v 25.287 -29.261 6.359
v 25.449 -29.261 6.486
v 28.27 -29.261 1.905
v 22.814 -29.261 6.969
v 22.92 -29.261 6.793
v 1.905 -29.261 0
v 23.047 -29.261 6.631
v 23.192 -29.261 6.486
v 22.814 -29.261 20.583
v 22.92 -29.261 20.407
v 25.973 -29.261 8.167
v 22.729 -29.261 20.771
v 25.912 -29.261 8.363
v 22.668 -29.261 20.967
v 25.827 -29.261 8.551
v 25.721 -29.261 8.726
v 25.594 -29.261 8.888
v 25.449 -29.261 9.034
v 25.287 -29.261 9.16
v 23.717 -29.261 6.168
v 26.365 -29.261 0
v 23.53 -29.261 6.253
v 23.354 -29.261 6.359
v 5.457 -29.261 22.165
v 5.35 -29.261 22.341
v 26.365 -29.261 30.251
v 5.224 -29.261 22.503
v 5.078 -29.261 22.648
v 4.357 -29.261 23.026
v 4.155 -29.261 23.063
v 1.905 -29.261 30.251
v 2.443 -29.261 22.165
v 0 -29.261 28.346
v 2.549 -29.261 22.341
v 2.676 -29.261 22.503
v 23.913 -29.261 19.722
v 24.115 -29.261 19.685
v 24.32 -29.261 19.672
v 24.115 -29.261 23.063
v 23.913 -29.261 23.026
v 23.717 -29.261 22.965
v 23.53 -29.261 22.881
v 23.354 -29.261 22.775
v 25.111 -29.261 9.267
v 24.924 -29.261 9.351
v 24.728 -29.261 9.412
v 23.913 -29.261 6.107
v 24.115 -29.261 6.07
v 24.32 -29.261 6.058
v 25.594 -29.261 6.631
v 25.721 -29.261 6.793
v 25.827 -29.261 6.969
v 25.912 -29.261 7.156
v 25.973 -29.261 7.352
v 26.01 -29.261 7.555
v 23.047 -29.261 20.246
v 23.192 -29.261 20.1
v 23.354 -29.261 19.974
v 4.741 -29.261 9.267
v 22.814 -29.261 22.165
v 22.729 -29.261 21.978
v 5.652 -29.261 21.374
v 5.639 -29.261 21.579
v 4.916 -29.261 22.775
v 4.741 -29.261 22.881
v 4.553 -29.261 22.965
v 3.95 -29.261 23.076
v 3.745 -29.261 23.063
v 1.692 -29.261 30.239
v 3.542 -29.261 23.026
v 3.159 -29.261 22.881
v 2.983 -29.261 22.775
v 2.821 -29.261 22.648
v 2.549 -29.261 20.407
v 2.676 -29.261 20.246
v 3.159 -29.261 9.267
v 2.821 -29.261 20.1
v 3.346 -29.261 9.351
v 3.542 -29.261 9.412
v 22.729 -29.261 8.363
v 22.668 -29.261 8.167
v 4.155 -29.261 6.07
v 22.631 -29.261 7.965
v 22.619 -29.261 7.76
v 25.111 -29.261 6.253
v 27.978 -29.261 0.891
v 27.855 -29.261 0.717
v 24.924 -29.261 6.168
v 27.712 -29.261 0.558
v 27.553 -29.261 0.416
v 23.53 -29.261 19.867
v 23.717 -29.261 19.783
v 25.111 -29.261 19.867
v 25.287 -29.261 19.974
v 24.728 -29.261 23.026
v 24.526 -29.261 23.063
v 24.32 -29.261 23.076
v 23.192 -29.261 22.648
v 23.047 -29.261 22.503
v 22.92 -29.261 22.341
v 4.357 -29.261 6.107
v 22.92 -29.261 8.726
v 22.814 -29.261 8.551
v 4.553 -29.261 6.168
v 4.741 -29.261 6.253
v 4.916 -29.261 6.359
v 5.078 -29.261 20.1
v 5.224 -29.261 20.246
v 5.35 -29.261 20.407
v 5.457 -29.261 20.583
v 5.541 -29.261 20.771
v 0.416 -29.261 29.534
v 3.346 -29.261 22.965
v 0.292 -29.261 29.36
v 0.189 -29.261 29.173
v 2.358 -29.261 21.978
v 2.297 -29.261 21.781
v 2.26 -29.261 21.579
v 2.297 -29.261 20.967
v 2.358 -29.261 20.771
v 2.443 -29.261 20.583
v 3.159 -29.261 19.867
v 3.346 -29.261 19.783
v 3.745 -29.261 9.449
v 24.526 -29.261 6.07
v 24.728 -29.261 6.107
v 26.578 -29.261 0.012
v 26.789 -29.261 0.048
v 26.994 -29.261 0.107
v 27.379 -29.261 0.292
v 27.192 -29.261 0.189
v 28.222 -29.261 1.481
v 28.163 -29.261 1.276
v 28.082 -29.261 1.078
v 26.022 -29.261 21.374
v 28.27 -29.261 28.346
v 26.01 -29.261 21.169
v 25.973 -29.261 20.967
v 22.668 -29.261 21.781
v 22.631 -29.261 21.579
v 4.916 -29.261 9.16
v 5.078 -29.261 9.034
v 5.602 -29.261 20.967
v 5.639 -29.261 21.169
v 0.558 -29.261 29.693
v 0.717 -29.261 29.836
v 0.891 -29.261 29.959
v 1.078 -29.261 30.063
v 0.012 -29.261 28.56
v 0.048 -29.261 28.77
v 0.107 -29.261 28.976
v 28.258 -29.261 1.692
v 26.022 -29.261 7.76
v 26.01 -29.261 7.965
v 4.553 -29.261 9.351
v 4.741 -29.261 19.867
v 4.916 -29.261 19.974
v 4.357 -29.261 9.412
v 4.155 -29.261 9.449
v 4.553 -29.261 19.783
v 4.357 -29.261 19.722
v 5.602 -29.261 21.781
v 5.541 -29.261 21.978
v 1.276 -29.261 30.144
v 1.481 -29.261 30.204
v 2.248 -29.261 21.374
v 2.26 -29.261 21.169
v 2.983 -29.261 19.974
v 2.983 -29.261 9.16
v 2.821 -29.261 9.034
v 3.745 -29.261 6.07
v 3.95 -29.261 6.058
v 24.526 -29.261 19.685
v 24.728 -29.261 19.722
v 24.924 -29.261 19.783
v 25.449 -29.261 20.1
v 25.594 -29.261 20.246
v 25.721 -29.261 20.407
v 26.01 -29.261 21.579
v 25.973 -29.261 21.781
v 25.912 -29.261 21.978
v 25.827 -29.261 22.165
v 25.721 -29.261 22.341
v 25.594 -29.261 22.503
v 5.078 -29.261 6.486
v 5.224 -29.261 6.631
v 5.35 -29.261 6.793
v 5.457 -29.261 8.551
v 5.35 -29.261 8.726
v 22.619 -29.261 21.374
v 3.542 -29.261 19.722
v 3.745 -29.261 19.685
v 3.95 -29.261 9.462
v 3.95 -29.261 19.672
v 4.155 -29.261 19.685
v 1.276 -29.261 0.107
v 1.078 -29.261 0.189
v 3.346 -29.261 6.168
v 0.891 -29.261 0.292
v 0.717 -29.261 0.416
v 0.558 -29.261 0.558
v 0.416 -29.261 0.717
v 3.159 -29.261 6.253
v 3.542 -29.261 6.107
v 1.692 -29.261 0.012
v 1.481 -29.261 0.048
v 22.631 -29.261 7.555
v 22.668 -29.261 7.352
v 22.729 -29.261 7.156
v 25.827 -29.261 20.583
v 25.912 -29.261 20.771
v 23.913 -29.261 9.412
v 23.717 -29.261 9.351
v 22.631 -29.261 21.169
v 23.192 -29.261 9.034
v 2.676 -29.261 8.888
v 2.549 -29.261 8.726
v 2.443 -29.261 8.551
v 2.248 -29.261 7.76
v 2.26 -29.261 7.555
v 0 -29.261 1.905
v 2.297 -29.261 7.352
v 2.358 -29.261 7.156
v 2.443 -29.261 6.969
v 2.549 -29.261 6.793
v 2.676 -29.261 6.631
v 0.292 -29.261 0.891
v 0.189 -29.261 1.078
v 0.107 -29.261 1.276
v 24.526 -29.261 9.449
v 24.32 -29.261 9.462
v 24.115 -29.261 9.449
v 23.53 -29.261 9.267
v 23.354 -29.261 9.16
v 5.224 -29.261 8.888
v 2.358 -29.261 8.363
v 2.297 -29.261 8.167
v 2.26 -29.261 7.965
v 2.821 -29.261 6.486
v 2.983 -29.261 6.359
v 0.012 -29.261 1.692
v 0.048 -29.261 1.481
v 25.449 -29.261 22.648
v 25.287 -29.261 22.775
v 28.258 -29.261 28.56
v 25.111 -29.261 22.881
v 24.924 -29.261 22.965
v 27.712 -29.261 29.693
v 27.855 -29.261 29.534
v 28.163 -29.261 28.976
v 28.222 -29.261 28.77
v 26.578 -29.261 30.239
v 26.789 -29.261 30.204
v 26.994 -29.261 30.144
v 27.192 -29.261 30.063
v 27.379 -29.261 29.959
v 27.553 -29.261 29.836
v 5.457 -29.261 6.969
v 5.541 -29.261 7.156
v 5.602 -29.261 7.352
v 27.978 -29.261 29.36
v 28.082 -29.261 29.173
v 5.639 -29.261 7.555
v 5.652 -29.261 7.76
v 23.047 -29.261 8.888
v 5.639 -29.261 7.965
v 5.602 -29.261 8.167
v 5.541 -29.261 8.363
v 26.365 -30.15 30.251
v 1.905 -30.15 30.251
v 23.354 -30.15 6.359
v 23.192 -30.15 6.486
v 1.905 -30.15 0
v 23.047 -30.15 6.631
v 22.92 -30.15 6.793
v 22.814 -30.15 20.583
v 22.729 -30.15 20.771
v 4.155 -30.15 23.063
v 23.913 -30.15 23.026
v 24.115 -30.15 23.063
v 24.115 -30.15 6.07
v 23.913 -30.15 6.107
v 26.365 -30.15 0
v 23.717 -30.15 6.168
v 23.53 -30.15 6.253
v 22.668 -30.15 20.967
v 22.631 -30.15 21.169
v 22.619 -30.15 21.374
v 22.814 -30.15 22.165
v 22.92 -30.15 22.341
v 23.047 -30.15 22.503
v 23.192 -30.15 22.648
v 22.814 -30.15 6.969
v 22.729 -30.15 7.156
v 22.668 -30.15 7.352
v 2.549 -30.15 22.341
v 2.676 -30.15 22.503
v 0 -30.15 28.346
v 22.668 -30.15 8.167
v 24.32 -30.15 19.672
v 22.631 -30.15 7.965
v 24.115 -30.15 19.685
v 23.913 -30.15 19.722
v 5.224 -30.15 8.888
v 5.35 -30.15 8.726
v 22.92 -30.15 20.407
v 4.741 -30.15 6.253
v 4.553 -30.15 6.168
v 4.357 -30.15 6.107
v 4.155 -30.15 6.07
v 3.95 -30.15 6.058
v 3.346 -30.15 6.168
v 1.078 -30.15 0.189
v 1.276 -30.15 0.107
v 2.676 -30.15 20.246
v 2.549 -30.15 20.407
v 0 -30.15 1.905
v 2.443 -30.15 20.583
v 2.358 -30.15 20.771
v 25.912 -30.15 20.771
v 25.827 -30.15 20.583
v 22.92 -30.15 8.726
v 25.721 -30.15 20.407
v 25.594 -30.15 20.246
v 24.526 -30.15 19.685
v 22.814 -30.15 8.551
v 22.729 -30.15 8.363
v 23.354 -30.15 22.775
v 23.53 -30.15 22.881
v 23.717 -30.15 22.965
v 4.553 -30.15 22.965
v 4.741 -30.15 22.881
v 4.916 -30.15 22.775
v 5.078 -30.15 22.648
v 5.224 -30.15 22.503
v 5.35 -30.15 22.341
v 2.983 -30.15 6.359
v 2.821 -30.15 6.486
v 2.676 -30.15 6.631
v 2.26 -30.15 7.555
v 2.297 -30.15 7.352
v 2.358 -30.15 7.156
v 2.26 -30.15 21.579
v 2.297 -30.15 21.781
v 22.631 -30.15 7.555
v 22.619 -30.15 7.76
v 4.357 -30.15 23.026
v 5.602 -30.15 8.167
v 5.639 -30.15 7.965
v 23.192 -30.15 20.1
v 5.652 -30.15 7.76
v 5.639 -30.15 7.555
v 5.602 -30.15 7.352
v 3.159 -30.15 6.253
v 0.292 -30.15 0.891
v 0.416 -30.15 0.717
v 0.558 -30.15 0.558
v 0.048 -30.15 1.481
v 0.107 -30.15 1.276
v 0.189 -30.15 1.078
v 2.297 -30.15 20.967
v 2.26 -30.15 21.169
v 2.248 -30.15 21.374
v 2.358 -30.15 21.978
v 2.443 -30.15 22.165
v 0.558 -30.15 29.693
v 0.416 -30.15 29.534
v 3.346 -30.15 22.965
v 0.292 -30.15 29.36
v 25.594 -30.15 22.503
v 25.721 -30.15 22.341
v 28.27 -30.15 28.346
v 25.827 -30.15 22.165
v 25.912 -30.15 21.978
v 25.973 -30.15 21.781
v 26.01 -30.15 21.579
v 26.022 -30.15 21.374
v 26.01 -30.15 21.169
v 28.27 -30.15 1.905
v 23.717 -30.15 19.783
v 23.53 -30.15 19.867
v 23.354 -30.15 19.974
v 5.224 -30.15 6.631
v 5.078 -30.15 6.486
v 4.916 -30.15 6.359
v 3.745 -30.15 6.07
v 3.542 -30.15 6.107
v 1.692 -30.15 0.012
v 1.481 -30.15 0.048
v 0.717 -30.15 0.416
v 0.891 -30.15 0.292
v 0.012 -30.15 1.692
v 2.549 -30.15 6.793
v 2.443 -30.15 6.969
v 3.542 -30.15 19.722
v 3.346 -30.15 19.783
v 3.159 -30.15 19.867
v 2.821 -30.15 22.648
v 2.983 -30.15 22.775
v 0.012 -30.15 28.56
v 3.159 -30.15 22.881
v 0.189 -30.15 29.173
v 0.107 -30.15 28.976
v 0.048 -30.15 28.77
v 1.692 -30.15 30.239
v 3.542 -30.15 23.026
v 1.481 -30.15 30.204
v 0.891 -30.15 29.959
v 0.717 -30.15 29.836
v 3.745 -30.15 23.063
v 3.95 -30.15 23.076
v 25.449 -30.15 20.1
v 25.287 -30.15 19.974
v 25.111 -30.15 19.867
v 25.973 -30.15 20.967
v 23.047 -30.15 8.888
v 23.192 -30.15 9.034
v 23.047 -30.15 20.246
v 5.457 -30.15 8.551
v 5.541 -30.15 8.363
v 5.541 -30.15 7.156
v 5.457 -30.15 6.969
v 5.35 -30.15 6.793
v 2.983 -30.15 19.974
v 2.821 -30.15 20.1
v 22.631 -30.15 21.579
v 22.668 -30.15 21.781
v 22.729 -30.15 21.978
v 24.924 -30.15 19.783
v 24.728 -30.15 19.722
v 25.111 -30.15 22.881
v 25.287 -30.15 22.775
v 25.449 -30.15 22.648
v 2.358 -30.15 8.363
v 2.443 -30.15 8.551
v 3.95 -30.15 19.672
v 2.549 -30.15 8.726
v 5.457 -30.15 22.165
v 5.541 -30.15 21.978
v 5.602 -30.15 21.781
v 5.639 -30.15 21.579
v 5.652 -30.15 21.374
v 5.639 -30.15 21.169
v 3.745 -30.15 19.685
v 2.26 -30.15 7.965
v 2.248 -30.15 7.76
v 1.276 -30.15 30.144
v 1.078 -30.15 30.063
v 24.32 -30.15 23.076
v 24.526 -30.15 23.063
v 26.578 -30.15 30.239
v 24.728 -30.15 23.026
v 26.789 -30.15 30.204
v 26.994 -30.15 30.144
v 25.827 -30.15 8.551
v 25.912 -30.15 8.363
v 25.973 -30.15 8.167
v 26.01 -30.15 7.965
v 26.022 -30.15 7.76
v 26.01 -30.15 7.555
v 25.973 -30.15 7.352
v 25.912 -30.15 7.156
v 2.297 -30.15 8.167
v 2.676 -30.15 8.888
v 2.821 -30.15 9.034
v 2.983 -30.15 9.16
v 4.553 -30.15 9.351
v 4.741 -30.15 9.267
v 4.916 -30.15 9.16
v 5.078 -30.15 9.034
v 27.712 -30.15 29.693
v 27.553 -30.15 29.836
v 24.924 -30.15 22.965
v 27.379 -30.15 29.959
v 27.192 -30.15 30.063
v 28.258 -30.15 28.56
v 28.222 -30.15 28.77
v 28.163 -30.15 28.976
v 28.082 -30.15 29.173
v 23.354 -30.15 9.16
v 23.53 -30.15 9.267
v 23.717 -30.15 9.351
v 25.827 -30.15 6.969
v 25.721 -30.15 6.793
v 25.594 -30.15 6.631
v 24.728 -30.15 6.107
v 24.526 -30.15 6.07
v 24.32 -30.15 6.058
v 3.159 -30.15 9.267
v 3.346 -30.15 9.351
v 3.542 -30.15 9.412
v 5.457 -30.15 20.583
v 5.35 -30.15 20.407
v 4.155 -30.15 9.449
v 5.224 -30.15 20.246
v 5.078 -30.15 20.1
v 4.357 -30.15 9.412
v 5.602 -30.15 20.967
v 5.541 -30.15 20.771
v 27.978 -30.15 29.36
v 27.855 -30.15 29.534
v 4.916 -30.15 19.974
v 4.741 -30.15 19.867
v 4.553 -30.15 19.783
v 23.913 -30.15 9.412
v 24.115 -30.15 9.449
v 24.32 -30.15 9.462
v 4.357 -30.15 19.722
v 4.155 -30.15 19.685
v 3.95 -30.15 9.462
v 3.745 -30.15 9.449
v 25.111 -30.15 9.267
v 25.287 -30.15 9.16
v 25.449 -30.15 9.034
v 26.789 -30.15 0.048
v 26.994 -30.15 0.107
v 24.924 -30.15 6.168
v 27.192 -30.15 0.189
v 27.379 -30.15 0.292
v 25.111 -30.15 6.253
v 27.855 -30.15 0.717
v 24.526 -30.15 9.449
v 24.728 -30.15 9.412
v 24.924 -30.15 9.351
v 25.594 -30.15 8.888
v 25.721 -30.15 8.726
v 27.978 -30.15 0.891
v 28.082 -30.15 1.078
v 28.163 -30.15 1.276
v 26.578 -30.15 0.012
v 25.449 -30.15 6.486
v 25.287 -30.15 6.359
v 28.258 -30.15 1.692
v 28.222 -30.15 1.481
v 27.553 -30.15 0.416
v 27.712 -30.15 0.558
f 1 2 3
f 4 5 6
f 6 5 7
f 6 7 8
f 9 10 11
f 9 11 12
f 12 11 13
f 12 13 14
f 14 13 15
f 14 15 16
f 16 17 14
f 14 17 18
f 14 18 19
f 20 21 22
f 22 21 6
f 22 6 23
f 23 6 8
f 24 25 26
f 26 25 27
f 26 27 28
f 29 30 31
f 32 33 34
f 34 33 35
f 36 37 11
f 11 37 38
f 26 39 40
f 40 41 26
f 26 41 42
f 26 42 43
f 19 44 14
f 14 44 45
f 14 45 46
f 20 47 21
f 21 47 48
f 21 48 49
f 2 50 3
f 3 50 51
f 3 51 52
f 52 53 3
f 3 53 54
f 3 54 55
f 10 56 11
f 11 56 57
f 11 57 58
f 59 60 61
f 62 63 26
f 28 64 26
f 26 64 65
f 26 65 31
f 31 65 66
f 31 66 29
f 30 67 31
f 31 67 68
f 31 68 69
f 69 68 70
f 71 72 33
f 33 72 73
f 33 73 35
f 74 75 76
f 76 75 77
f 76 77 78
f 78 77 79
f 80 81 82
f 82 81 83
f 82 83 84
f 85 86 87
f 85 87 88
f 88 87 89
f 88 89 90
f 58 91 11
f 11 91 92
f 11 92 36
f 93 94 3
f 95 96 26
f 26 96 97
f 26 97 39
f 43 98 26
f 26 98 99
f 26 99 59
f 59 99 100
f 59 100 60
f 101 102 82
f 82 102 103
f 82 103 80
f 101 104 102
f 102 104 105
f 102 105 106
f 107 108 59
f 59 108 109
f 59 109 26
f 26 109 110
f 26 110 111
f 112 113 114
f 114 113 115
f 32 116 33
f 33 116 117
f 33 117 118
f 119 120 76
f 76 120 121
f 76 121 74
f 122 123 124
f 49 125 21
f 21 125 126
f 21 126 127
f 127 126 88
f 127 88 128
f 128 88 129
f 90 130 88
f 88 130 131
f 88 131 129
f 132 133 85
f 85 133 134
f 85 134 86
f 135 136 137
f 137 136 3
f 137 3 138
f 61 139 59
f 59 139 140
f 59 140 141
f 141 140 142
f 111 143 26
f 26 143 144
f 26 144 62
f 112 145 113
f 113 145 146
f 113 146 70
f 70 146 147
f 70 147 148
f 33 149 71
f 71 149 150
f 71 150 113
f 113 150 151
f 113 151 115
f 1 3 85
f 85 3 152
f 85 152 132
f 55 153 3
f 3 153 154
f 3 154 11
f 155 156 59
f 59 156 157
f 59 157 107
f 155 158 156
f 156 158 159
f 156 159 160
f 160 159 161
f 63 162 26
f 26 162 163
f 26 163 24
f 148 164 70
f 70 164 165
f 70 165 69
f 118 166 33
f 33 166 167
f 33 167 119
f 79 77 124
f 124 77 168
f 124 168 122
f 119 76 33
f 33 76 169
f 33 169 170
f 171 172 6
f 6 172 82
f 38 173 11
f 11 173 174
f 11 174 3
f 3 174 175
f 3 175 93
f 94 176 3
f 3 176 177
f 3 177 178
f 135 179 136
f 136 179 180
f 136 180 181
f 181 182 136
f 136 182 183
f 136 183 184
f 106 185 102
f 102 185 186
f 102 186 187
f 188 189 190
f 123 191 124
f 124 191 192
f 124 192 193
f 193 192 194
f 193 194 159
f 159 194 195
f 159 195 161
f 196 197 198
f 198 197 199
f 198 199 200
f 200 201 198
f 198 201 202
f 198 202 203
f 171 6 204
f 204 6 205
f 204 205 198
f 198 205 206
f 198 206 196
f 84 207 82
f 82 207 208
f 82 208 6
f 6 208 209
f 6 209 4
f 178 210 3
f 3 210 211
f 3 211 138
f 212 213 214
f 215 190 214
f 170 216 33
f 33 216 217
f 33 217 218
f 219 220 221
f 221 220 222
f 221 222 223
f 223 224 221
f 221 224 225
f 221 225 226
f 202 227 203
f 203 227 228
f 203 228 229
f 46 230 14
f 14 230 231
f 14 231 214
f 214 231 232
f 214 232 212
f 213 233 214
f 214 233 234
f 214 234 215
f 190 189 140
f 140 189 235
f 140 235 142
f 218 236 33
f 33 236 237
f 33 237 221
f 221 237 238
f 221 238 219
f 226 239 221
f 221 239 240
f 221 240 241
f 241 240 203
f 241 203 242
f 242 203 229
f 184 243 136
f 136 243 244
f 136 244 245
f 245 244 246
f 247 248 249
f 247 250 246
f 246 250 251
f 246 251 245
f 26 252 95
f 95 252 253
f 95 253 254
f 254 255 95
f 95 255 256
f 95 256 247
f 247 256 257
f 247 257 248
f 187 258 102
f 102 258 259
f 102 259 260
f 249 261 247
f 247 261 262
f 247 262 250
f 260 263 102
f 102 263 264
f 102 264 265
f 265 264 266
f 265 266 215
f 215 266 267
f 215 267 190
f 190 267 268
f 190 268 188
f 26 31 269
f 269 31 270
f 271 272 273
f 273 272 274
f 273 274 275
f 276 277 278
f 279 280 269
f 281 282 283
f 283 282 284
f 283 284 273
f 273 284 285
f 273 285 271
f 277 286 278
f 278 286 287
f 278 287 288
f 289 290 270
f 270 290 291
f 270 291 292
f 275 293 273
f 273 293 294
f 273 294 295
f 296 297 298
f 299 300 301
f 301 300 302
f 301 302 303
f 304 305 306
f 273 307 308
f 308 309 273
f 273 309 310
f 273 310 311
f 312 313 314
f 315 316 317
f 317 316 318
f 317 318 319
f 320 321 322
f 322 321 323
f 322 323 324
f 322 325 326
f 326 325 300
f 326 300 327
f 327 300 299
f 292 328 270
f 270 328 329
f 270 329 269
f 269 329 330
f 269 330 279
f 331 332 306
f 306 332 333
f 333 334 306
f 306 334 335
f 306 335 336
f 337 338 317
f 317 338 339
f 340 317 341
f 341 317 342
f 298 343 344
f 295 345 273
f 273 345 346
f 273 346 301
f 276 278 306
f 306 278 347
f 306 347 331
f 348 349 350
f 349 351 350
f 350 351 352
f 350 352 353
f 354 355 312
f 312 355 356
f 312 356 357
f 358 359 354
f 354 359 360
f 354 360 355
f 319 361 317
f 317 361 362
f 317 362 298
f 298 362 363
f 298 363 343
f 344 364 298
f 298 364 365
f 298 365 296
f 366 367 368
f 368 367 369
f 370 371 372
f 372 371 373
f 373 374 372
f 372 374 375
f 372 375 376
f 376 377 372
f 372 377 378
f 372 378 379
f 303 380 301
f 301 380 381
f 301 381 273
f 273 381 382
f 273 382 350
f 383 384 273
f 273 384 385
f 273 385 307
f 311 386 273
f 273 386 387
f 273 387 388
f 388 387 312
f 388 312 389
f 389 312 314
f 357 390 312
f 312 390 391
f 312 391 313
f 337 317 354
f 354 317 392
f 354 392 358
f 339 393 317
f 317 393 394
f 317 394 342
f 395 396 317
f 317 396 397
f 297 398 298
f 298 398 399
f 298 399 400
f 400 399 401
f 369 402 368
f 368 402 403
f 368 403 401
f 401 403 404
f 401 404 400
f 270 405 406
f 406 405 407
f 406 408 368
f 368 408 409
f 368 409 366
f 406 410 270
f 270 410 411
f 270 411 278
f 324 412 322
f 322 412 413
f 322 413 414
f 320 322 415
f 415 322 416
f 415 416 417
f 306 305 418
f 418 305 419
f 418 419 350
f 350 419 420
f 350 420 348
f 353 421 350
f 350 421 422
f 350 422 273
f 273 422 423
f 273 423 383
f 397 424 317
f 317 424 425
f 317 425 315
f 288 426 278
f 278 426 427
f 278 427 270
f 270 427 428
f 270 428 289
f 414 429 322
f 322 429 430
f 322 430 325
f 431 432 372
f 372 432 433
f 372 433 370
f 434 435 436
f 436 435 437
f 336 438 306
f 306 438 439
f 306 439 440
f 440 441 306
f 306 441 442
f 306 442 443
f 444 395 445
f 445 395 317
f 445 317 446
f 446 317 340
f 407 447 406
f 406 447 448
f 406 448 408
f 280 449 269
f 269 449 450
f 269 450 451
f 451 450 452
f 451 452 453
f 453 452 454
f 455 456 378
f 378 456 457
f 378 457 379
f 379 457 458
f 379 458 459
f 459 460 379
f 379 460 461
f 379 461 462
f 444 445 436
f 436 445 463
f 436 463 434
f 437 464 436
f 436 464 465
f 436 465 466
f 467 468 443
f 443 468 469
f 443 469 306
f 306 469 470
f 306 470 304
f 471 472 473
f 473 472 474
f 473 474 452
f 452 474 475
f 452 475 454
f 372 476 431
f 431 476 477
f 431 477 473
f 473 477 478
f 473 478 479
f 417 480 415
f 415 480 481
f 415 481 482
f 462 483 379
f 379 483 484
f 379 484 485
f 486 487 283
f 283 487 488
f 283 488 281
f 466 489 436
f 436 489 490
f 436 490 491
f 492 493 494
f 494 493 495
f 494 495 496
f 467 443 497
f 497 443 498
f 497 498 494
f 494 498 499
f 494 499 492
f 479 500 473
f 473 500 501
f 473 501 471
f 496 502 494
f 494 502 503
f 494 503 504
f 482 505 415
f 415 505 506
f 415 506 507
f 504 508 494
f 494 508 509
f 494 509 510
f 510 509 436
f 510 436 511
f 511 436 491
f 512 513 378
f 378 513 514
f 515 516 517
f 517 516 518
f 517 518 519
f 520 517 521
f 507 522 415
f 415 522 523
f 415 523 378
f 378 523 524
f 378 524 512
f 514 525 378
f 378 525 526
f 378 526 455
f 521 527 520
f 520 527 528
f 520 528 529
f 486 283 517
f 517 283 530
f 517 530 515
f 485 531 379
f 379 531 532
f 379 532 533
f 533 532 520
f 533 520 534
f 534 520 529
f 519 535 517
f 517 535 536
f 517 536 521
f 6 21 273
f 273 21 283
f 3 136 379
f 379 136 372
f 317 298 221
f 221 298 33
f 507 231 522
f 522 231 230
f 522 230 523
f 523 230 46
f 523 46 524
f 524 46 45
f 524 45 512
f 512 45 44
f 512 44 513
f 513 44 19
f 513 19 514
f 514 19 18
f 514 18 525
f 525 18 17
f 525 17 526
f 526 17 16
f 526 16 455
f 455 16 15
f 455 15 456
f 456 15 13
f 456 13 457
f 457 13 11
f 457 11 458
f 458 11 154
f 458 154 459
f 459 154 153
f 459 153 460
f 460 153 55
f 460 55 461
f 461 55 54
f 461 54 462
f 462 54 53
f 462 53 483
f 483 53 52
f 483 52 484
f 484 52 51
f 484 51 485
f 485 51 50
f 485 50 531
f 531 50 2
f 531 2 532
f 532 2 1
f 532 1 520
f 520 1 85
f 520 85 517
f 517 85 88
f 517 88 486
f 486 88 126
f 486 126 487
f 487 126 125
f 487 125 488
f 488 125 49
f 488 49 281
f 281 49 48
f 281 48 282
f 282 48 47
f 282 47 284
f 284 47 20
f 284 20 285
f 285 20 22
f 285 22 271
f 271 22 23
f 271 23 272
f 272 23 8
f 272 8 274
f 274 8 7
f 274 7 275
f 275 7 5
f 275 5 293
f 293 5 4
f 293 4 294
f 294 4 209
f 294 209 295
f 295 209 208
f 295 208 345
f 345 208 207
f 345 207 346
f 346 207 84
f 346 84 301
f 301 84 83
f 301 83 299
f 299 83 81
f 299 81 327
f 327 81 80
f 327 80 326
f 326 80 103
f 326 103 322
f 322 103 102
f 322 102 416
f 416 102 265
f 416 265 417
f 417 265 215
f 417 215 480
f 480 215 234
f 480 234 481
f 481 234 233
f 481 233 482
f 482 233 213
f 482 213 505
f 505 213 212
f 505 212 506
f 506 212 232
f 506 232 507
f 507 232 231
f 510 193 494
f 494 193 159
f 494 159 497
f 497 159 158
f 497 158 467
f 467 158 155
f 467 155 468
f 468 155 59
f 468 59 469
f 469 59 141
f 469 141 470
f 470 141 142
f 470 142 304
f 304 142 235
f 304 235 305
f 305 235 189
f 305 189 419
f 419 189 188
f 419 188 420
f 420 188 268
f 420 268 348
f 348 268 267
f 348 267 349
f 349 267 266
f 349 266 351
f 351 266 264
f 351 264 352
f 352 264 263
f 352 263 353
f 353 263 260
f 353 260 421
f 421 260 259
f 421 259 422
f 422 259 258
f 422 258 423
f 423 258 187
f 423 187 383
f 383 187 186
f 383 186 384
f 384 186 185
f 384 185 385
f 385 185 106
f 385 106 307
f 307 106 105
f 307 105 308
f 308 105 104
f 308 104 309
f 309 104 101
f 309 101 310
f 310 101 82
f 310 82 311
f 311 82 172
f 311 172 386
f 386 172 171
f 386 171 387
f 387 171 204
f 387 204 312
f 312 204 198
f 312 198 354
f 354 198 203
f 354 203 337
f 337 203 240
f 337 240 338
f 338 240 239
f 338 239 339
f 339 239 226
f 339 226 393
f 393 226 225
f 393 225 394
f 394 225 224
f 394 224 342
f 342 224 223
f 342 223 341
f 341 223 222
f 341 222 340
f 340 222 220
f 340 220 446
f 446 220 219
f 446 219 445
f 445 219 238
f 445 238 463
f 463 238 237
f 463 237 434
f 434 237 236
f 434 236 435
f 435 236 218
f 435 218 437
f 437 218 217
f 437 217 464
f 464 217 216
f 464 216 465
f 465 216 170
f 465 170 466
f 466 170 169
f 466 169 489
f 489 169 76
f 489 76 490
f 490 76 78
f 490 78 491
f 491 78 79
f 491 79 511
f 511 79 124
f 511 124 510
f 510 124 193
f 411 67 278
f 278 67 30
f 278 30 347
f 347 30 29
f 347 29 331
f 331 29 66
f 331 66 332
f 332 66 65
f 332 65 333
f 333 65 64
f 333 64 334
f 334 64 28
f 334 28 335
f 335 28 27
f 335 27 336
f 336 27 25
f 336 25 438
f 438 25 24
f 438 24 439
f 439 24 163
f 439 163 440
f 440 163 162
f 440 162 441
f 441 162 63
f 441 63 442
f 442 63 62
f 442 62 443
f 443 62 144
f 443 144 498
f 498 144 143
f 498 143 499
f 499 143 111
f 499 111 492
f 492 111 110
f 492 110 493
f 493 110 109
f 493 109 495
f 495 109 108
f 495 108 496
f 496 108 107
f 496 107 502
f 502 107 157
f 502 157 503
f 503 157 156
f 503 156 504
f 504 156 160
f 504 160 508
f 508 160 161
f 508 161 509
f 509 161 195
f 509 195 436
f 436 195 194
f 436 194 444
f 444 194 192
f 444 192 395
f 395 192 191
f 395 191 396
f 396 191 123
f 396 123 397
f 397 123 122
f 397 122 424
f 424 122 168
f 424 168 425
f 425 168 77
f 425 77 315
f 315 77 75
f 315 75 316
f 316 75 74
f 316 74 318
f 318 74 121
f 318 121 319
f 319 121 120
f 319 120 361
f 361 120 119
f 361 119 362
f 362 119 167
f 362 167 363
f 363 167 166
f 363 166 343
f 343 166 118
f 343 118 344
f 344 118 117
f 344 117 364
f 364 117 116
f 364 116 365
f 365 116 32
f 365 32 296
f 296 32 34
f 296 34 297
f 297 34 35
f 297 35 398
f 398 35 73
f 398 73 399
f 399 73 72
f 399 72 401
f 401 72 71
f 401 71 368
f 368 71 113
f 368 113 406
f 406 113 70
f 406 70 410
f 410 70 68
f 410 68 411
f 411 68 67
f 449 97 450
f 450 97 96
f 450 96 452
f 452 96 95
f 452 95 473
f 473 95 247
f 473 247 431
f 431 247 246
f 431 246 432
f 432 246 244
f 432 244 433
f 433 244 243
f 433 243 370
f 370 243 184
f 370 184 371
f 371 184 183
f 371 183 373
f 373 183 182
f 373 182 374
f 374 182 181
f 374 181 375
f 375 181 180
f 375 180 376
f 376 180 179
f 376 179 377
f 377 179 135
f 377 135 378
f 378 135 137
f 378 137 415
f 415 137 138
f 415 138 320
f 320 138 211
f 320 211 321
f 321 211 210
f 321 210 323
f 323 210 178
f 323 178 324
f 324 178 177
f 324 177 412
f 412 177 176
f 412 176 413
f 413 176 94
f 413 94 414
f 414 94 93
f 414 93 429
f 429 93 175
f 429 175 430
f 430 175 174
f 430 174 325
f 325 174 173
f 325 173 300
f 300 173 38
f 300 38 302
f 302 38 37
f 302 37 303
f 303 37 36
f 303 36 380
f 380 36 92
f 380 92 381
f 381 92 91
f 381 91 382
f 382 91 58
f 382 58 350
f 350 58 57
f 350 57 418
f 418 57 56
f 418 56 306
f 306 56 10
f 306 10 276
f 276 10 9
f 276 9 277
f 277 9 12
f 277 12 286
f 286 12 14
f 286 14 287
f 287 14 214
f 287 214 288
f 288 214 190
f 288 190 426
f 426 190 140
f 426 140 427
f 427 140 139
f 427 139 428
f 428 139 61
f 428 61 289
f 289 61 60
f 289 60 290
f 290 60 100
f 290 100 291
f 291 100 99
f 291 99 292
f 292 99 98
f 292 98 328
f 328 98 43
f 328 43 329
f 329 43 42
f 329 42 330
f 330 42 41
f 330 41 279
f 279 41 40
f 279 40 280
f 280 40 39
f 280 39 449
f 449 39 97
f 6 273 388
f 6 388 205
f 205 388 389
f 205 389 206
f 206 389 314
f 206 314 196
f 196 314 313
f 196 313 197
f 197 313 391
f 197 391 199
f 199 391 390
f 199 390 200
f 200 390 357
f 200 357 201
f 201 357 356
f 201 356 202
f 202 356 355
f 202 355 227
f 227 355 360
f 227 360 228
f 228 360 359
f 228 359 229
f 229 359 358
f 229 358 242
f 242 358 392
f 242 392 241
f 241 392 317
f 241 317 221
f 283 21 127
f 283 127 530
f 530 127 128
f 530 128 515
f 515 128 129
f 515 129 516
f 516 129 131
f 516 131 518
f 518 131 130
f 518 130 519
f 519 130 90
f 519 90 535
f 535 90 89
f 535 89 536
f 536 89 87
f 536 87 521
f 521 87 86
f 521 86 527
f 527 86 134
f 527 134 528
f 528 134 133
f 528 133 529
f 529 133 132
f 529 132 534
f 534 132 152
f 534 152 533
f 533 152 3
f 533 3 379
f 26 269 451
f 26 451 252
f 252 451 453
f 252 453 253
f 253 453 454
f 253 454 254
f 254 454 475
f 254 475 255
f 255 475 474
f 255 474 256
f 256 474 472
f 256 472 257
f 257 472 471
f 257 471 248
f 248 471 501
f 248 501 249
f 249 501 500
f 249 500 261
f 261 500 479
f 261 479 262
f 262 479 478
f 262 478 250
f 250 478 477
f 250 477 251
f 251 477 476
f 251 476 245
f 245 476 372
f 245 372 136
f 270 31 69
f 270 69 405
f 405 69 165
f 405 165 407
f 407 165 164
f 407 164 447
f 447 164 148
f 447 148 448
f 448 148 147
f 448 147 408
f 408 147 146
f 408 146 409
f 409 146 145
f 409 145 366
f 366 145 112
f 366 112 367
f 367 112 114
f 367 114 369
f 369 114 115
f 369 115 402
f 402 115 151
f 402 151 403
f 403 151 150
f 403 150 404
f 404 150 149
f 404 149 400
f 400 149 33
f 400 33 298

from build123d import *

# Parameters (mm, degrees)
BOSS_EXTRUDE1_DEPTH     = 28.2702
SKETCH2_R               = 3.556
SKETCH2_R_2             = 1.4986
SKETCH2_R_3             = 2.0066
MOTOR_MOUNT_HOLES_DEPTH = 50.437835996
SKETCH3_R               = 1.7018
PLATE_MOUNT_HOLES_DEPTH = 51.700550556
SKETCH4_W               = 28.2702
SKETCH4_H               = 29.2608
CUT_EXTRUDE1_DEPTH      = 50.437835996
FILLET1_R               = 1.905


with BuildPart() as part:
    # Sketch1 → Boss-Extrude1 (new body)
    with BuildSketch(Plane(origin=(0, 0, 0), x_dir=(0, 0, -1), z_dir=(1, 0, 0))):
        Polygon((0, 0), (0, -30.1498), (-30.2514, -30.1498), (-30.2514, -29.2608), (-3.1242, -29.2608), (-3.1242, 0), align=None)
    extrude(amount=BOSS_EXTRUDE1_DEPTH)

    # Sketch2 → Motor_Mount_holes (cut, through all)
    with BuildSketch(Plane.XY.offset(3.1242)):
        with Locations((14.1351, -11.6586)):
            Circle(SKETCH2_R)
        with Locations((14.1351, -3.1496)):
            Circle(SKETCH2_R_2)
        with Locations((5.2451, -11.6586)):
            Circle(SKETCH2_R_3)
        with Locations(Location((23.0251, -11.6586, 0), (0, 0, 180))):
            Circle(SKETCH2_R_3)
        with Locations(Location((14.1351, -20.1676, 0), (0, 0, 180))):
            Circle(SKETCH2_R_2)
    extrude(amount=-MOTOR_MOUNT_HOLES_DEPTH, mode=Mode.SUBTRACT)

    # Sketch3 → Plate_Mount_Holes (cut, through all)
    with BuildSketch(Plane(origin=(0, -29.2608, 0), x_dir=(1, 0, 0), z_dir=(0, 1, 0))):
        with Locations(Location((24.3205, -7.7597, 0), (0, 0, 270))):
            Circle(SKETCH3_R)
        with Locations(Location((3.9497, -7.7597, 0), (0, 0, 90))):
            Circle(SKETCH3_R)
        with Locations(Location((3.9497, -21.3741, 0), (0, 0, 270))):
            Circle(SKETCH3_R)
        with Locations(Location((24.3205, -21.3741, 0), (0, 0, 90))):
            Circle(SKETCH3_R)
    extrude(amount=-PLATE_MOUNT_HOLES_DEPTH, mode=Mode.SUBTRACT)

    # Sketch4 → Cut-Extrude1 (cut, through all)
    with BuildSketch(Plane.XY.offset(3.1242)):
        with Locations((14.1351, -14.6304)):
            Rectangle(SKETCH4_W, SKETCH4_H)
    extrude(amount=-CUT_EXTRUDE1_DEPTH, mode=Mode.SUBTRACT)

    # Fillet1
    fillet1_edges = [part.edges().sort_by_distance(p)[0] for p in [
        (28.2702, -29.7053, 30.2514),
        (28.2702, -29.7053, 0),
        (0, -29.7053, 0),
        (0, -29.7053, 30.2514),
    ]]
    fillet(fillet1_edges, radius=FILLET1_R)


solid = part.part
